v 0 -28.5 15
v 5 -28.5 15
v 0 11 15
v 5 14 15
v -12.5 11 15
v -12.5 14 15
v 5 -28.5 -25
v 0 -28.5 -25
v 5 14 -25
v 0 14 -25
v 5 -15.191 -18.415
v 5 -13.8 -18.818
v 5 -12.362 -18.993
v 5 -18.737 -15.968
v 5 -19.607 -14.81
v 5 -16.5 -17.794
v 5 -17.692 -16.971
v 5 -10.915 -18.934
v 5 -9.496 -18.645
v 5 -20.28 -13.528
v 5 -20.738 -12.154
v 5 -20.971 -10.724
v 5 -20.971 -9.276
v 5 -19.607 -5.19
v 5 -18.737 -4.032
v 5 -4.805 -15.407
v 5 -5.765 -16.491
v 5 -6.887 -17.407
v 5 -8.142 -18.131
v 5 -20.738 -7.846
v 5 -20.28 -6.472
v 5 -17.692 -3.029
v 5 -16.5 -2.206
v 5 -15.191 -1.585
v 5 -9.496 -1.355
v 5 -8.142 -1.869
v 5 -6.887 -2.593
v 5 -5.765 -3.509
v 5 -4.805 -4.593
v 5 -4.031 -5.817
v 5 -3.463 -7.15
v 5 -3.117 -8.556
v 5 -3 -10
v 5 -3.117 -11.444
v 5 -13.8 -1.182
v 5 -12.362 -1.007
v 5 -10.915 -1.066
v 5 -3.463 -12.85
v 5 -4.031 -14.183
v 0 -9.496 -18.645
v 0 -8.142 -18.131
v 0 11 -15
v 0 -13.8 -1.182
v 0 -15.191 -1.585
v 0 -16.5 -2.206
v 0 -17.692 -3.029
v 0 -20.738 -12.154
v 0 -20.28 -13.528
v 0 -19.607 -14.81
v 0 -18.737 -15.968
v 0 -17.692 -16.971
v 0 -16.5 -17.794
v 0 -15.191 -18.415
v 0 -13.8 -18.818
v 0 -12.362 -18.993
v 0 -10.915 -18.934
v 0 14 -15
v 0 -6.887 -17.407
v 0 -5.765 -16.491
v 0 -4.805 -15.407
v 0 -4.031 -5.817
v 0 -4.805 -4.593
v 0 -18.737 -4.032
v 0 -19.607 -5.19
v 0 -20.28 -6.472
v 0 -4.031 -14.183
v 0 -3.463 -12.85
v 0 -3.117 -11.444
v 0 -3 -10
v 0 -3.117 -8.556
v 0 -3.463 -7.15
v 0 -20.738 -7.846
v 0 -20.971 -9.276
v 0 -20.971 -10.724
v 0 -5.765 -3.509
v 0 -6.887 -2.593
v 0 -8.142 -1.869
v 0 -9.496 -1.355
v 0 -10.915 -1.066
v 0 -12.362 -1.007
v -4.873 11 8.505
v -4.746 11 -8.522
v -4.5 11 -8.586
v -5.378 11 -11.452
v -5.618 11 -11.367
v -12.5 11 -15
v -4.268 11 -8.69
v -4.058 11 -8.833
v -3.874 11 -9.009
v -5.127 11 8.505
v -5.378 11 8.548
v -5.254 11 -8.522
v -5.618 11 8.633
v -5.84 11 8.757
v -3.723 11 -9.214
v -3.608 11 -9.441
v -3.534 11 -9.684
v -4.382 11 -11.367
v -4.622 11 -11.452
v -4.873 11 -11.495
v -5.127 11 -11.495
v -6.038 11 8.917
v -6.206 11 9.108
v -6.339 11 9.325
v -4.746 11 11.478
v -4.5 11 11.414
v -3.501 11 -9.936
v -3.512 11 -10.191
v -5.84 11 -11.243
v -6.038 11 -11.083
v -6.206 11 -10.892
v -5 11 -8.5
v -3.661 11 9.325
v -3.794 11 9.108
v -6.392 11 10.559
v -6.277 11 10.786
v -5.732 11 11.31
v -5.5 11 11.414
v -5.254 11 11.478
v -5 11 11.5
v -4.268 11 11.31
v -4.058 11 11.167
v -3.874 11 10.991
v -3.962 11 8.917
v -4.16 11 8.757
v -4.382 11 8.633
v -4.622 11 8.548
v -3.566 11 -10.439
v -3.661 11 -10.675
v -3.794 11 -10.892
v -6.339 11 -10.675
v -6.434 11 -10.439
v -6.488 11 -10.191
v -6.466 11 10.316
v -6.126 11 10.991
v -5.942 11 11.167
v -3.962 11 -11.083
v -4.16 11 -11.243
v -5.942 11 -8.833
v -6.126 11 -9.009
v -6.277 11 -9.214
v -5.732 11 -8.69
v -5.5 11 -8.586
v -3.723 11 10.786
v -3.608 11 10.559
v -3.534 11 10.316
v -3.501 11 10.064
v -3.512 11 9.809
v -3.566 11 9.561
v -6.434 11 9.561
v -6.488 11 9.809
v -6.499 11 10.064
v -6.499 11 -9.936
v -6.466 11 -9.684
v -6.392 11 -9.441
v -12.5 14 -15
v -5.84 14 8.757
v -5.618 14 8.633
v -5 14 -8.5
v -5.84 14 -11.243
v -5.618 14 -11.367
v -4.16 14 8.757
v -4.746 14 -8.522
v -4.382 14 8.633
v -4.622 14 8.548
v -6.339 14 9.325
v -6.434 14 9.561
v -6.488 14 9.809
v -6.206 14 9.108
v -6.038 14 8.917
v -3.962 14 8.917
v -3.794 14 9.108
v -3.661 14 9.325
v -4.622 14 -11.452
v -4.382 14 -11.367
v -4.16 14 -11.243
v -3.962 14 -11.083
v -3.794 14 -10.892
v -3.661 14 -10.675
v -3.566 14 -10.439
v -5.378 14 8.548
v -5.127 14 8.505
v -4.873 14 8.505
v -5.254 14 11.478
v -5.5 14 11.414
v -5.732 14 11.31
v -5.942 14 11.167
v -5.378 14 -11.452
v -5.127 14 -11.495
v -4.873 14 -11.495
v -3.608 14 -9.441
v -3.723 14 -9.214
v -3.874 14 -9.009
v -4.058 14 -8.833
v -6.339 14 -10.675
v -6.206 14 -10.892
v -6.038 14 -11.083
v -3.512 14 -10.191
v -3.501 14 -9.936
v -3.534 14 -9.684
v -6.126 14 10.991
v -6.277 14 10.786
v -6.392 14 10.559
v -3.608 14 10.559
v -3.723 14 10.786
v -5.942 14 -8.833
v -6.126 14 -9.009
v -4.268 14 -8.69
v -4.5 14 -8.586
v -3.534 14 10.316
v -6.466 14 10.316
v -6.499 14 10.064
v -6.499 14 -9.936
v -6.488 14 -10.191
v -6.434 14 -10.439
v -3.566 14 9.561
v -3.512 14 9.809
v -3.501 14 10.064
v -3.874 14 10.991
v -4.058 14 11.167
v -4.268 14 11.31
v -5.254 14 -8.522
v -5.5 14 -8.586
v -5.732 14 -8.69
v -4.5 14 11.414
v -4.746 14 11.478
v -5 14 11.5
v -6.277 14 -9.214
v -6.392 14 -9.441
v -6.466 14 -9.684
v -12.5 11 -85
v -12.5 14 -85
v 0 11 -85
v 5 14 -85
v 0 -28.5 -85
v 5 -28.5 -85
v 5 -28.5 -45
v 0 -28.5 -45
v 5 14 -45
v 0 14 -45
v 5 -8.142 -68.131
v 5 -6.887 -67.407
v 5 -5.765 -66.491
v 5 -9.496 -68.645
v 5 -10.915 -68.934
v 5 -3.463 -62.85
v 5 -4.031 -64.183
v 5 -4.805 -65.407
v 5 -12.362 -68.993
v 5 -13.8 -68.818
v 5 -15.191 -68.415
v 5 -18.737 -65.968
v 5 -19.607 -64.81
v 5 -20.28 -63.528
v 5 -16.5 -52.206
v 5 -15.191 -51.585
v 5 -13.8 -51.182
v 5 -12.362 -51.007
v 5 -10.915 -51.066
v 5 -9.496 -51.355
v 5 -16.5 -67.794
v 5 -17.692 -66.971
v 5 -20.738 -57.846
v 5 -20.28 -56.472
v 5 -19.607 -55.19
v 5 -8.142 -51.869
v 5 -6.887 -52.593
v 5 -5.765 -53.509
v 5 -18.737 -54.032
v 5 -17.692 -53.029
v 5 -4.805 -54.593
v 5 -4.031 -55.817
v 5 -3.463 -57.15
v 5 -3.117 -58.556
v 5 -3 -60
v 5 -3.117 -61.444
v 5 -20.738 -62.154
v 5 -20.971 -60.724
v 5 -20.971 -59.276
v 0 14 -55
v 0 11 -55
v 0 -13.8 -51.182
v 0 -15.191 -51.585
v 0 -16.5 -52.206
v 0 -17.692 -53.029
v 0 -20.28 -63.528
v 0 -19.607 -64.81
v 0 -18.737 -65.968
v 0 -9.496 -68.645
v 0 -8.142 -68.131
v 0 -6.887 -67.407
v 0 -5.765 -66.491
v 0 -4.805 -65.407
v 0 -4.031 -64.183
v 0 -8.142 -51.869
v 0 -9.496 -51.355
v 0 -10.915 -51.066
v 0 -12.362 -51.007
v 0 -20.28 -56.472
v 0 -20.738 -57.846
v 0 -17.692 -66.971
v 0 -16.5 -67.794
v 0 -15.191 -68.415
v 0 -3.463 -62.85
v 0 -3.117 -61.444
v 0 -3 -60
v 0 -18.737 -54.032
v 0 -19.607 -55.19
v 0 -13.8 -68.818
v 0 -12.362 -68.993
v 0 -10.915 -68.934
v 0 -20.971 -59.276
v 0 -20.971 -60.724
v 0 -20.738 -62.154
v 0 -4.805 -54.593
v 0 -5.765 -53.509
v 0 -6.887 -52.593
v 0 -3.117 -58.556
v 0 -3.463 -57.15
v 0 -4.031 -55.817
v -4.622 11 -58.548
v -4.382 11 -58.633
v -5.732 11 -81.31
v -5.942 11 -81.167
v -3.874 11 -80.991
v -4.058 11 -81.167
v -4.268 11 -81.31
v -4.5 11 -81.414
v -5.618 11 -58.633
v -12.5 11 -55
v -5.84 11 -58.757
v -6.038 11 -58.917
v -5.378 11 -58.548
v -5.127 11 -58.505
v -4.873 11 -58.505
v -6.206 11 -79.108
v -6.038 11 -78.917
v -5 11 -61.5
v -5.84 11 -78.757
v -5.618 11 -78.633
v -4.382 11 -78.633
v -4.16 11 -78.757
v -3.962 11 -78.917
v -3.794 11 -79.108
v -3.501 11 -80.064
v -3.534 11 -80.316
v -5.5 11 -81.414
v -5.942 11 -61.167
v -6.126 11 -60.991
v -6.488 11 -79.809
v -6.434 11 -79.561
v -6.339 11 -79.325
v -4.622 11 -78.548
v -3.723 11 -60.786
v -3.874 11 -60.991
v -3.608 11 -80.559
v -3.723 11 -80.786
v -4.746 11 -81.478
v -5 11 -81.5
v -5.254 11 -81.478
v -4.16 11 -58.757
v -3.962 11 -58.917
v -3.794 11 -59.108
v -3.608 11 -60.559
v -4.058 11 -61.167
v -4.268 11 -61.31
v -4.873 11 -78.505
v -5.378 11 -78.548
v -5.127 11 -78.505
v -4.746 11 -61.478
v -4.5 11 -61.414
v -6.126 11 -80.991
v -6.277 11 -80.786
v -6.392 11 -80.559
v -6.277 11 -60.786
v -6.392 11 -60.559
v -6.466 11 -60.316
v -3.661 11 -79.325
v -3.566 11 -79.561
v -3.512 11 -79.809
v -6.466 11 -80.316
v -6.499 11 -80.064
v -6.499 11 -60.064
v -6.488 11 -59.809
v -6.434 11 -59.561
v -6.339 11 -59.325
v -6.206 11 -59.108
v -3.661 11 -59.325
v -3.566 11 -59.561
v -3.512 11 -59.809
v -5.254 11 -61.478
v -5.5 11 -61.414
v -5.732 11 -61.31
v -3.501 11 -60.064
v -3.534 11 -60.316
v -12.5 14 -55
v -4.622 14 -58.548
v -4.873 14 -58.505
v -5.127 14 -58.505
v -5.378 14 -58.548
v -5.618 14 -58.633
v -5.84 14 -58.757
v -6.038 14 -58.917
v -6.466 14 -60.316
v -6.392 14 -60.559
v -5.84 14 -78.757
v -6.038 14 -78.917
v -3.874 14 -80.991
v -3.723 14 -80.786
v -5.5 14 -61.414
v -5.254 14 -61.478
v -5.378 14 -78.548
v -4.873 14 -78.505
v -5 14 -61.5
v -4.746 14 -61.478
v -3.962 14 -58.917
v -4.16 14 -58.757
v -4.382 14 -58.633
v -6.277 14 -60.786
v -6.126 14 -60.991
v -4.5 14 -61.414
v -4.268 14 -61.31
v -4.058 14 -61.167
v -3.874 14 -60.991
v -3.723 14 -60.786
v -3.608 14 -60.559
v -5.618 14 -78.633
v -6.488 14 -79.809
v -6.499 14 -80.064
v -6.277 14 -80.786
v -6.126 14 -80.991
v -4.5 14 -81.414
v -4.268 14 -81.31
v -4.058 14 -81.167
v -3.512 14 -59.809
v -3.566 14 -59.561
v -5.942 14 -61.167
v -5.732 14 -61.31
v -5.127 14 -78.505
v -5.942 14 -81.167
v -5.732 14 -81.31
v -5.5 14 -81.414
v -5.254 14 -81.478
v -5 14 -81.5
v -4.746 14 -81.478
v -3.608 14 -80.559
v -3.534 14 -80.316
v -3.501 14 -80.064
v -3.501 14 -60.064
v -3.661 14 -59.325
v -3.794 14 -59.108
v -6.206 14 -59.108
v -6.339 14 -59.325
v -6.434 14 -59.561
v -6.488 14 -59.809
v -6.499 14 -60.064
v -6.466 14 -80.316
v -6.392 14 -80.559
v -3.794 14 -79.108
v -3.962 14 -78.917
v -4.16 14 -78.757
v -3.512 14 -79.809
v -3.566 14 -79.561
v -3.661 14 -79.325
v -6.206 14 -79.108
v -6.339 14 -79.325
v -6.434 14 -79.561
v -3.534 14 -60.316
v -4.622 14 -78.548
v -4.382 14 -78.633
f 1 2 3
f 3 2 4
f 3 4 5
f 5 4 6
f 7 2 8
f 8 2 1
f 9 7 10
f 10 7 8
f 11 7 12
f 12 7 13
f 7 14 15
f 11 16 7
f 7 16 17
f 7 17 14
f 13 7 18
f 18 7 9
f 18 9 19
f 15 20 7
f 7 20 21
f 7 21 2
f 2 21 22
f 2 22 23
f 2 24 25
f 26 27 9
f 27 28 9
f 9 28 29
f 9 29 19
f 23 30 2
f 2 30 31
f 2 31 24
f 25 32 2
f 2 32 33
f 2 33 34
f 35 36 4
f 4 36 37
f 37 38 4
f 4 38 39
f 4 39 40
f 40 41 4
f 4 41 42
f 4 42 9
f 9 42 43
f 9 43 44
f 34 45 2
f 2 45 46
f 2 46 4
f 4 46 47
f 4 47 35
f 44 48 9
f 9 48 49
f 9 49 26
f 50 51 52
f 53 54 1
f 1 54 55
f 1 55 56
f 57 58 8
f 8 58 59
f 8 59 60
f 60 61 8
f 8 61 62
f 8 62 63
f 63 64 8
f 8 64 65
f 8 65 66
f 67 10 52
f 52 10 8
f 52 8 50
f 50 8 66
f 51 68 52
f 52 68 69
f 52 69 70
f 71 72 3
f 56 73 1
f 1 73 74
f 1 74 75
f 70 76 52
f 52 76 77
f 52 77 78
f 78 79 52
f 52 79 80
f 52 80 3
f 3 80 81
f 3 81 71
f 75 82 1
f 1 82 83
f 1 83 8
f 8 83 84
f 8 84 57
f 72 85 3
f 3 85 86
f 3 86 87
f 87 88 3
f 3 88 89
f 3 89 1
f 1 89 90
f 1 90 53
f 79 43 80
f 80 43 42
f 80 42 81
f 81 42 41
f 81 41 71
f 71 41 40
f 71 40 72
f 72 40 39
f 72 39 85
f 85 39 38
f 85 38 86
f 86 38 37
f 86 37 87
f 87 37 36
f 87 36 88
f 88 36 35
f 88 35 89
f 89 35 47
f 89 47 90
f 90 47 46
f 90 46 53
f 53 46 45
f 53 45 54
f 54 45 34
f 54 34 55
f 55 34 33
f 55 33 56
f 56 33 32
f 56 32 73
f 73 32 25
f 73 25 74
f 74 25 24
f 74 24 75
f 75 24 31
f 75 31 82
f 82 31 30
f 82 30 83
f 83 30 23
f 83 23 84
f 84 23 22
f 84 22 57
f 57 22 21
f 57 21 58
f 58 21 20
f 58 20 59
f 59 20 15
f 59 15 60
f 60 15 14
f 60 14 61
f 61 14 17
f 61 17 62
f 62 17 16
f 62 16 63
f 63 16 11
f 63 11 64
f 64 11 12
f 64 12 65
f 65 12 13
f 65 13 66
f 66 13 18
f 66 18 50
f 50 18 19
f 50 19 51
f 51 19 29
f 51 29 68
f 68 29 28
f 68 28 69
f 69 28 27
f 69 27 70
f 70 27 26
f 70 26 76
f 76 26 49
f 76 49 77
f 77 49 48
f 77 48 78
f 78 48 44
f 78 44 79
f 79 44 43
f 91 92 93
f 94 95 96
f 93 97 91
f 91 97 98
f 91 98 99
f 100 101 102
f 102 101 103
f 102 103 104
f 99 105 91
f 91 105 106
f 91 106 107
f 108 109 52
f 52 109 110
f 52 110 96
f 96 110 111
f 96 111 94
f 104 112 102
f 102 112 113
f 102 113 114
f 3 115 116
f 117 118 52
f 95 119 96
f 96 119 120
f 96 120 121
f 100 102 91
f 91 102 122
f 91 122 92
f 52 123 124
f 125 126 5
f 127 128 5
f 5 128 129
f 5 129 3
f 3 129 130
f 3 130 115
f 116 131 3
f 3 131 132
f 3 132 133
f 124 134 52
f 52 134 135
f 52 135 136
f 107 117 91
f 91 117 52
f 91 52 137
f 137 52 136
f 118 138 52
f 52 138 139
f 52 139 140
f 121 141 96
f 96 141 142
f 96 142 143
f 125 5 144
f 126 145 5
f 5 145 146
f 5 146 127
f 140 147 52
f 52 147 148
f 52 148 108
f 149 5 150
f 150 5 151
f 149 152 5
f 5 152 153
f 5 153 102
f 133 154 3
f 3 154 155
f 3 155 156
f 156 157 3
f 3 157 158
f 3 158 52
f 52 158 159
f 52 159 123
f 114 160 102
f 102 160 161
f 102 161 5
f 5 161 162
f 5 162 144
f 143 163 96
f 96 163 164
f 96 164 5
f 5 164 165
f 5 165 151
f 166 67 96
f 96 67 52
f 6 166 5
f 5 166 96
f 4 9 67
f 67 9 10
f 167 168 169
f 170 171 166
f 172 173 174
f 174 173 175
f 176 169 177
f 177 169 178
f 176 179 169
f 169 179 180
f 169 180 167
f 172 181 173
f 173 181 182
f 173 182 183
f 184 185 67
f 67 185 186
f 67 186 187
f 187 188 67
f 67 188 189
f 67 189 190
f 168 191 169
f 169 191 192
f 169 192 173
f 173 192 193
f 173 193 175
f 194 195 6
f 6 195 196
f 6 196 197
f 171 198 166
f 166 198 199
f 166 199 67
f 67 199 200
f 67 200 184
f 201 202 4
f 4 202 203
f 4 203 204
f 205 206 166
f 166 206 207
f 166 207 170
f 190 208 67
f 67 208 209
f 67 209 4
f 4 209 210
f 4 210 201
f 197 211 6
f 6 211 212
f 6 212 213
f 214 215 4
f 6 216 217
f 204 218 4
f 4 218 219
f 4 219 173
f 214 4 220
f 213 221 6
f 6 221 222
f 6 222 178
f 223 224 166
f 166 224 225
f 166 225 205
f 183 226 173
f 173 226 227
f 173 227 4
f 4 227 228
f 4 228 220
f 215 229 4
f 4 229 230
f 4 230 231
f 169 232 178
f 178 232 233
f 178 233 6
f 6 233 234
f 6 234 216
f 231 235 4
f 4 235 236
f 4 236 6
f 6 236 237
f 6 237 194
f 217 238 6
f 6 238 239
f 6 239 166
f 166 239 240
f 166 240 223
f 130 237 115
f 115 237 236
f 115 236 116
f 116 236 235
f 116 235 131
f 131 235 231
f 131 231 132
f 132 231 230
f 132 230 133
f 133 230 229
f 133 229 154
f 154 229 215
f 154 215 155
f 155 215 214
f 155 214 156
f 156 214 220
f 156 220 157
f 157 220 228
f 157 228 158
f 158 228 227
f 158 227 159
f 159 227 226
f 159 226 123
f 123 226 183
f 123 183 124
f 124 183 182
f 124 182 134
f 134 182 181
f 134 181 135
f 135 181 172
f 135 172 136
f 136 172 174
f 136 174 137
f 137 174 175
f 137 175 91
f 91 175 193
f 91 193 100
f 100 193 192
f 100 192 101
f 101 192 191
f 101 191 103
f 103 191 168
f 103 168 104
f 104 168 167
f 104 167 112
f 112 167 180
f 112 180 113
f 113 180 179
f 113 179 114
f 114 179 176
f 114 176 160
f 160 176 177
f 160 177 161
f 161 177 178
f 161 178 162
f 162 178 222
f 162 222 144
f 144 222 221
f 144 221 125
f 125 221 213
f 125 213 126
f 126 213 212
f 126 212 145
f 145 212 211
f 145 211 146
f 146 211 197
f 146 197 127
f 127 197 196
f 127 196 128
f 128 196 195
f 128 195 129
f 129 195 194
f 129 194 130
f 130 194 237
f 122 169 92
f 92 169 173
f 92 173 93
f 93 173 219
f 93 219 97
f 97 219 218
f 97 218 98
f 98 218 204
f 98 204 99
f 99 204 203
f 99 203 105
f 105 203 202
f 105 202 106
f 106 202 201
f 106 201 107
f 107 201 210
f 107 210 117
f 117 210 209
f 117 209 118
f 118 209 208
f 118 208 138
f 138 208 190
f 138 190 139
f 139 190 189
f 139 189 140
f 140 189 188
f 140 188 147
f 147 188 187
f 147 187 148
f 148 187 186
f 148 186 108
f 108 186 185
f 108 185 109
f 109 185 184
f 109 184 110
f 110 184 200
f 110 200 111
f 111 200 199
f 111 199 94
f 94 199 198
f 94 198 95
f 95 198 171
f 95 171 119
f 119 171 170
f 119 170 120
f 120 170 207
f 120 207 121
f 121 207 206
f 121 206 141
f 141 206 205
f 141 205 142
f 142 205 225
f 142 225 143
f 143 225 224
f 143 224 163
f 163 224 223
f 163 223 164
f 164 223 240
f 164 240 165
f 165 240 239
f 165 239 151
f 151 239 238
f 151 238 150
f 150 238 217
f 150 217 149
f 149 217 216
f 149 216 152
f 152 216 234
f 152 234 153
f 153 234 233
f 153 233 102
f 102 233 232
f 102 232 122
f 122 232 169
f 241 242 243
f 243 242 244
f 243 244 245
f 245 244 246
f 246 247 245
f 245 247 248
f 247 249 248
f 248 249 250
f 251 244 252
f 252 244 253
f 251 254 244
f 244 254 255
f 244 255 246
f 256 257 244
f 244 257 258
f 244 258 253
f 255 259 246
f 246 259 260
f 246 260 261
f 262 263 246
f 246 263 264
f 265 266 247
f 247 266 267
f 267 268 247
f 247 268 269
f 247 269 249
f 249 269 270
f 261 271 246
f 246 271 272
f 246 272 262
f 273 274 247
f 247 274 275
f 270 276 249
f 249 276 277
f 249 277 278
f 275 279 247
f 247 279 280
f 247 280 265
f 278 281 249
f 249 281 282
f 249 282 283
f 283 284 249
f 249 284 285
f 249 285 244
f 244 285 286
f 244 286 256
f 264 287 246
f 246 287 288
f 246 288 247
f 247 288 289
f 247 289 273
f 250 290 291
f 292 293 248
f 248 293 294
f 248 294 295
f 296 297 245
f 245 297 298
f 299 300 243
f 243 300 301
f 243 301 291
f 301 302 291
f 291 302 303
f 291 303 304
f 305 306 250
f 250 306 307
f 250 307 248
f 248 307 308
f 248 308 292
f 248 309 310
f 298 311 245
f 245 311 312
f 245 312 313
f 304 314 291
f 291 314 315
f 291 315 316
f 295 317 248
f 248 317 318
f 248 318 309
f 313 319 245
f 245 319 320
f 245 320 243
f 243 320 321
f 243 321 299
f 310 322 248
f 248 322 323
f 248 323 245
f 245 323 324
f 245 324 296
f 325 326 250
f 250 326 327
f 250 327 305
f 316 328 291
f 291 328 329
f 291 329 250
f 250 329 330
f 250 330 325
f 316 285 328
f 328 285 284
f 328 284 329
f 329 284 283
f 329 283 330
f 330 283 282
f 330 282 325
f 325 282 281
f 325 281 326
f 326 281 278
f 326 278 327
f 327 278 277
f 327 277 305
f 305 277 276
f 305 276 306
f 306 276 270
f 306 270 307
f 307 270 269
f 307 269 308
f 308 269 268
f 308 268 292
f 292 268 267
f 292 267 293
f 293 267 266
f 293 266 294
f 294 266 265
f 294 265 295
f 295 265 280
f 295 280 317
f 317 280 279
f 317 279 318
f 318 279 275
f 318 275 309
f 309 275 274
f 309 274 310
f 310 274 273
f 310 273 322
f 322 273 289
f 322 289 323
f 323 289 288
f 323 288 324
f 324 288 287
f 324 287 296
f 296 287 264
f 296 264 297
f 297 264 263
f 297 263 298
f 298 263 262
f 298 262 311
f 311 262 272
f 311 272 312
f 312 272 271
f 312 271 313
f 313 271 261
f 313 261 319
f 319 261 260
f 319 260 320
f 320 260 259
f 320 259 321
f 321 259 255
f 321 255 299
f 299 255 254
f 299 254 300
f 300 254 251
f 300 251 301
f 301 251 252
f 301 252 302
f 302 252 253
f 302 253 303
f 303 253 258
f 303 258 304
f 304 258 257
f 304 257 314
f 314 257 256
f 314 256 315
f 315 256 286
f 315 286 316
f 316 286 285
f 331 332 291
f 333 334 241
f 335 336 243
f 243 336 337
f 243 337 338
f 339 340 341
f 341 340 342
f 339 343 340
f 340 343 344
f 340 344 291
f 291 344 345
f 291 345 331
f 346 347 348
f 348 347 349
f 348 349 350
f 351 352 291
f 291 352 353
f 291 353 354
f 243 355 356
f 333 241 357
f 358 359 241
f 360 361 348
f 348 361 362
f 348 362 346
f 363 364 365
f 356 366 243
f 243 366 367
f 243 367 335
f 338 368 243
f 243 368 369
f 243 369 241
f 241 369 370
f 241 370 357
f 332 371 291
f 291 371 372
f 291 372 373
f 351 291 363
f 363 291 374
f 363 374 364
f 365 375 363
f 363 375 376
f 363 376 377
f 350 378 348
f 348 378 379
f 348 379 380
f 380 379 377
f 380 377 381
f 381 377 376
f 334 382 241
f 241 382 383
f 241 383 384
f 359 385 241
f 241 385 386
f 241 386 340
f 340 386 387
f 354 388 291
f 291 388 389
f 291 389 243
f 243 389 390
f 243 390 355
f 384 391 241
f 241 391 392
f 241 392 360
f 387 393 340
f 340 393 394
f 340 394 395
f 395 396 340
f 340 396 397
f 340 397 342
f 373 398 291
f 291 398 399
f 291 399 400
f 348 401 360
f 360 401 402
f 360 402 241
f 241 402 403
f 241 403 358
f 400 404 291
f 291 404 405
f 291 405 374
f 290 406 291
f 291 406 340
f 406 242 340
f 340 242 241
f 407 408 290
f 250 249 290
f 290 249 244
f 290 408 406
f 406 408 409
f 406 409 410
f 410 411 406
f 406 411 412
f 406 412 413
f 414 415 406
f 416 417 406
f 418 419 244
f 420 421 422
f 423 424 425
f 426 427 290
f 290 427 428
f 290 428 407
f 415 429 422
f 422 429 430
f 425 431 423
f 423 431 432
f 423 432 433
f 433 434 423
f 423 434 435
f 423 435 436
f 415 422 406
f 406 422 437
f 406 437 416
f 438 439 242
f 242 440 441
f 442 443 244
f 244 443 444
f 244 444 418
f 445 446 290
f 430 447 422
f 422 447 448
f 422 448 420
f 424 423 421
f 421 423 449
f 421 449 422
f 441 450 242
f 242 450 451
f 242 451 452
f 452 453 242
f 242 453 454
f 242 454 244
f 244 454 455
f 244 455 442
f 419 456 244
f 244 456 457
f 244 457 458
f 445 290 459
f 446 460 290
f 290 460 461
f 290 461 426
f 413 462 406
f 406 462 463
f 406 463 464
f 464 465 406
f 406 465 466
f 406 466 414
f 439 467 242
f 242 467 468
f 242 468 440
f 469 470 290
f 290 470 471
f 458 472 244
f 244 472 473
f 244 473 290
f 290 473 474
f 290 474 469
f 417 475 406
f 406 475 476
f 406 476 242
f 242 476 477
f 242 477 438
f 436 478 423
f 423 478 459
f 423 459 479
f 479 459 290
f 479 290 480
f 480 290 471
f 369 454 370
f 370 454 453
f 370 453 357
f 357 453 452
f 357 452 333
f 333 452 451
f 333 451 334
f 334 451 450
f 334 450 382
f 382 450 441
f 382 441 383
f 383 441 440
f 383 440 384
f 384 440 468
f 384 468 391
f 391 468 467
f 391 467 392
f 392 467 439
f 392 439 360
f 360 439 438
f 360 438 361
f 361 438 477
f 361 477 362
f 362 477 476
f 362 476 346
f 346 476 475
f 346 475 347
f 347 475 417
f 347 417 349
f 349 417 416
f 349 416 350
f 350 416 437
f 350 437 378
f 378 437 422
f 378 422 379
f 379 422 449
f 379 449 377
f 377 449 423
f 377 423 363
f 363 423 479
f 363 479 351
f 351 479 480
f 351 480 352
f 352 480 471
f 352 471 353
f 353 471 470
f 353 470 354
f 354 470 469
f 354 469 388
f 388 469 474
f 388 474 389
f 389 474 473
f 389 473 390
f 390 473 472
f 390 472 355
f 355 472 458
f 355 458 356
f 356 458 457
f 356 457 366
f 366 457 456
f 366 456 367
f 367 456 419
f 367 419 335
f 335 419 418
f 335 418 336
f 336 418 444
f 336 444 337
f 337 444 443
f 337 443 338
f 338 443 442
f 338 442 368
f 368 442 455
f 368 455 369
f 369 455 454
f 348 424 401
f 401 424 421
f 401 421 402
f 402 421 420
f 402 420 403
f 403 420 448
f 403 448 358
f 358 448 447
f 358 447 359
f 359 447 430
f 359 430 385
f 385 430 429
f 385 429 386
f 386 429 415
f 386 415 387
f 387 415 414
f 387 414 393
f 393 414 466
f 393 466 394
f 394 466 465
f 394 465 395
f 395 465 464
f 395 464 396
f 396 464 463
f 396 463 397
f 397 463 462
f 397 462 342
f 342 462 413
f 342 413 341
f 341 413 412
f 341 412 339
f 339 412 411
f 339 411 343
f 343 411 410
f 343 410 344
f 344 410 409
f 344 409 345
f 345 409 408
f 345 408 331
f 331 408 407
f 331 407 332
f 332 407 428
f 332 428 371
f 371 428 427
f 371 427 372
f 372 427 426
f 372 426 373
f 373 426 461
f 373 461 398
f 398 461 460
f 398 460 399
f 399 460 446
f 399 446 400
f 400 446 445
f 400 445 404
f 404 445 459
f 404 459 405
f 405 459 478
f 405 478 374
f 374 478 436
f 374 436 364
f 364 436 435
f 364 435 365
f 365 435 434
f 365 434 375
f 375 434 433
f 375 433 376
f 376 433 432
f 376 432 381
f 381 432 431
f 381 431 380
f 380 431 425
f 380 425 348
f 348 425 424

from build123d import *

# Parameters (mm, degrees)
EXTRUDE_1_DEPTH     = 5
SKETCH_2_R          = 9
CUT_EXTRUDE_1_DEPTH = 5
EXTRUDE_2_DEPTH     = 3
SKETCH_6_R          = 1.5
CUT_EXTRUDE_2_DEPTH = 3


with BuildPart() as part:
    # 草图1 → 凸台-拉伸1 (new body)
    with BuildSketch(Plane(origin=(0, 0, 0), x_dir=(0, 0, -1), z_dir=(1, 0, 0))):
        Polygon((-15, -28.5), (-15, 11), (15, 11), (25, 11), (25, -8.5), (25, -28.5), (15, -28.5), align=None)
    extrude(amount=EXTRUDE_1_DEPTH)

    # 草图2 → 切除-拉伸1 (cut)
    with BuildSketch(Plane(origin=(5, 0, 0), x_dir=(0, 0, -1), z_dir=(1, 0, 0))):
        with Locations(Location((10, -12, 0), (0, 0, 90))):
            Circle(SKETCH_2_R)
    extrude(amount=-CUT_EXTRUDE_1_DEPTH, mode=Mode.SUBTRACT)

    # 草图3 → 凸台-拉伸2 (add)
    with BuildSketch(Plane(origin=(0, 11, 0), x_dir=(1, 0, 0), z_dir=(0, 1, 0))):
        Polygon((5, 15), (5, 25), (0, 25), (0, 15), (-12.5, 15), (-12.5, -15), (5, -15), align=None)
    extrude(amount=EXTRUDE_2_DEPTH)

    # 草图6 → 切除-拉伸2 (cut)
    with BuildSketch(Plane(origin=(0, 14, 0), x_dir=(1, 0, 0), z_dir=(0, 1, 0))):
        with Locations(Location((-5, 10, 0), (0, 0, 270))):
            Circle(SKETCH_6_R)
        with Locations(Location((-5, -10, 0), (0, 0, 270))):
            Circle(SKETCH_6_R)
    extrude(amount=-CUT_EXTRUDE_2_DEPTH, mode=Mode.SUBTRACT)


with BuildPart() as body_2:
    # 镜向1: mirrored copy
    add(part.part.mirror(Plane(origin=(0, 0, -35), x_dir=(1, 0, 0), z_dir=(0, 0, -1))))


solid = Compound([part.part, body_2.part])
